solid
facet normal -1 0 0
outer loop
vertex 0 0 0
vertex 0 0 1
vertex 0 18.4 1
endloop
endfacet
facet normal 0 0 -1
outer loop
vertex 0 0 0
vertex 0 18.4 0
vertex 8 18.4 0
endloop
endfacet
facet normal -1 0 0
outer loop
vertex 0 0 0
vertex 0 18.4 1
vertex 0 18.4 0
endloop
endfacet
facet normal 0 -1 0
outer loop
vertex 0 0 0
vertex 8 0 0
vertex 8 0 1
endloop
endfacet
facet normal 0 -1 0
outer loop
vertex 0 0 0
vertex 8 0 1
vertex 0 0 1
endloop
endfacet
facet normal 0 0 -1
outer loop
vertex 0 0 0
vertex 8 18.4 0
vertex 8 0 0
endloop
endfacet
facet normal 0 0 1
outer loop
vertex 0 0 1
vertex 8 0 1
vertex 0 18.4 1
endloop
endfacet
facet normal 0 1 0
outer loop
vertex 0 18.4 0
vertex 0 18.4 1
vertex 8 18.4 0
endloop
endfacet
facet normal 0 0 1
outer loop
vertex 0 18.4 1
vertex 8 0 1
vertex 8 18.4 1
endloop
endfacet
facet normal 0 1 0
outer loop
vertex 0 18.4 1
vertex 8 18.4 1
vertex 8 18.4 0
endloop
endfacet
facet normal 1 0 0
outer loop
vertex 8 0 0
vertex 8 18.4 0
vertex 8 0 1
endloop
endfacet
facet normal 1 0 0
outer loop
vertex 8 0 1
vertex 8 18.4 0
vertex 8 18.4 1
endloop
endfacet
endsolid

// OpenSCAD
/* Warning, this is a very basic generator with a lot of approximation 
input data : [TSOP_TYPE_I, NLB, 8x18.4x1mm, 32, , A, C04-21343A]
generated by com.zoubworld.electronics.cad.model3d.Basic
Date : Sun Feb 15 10:50:49 CET 2026
*/

//body
color("black")
translate([0,0,0])
cube([8.0,18.4,1.0], center=false);
